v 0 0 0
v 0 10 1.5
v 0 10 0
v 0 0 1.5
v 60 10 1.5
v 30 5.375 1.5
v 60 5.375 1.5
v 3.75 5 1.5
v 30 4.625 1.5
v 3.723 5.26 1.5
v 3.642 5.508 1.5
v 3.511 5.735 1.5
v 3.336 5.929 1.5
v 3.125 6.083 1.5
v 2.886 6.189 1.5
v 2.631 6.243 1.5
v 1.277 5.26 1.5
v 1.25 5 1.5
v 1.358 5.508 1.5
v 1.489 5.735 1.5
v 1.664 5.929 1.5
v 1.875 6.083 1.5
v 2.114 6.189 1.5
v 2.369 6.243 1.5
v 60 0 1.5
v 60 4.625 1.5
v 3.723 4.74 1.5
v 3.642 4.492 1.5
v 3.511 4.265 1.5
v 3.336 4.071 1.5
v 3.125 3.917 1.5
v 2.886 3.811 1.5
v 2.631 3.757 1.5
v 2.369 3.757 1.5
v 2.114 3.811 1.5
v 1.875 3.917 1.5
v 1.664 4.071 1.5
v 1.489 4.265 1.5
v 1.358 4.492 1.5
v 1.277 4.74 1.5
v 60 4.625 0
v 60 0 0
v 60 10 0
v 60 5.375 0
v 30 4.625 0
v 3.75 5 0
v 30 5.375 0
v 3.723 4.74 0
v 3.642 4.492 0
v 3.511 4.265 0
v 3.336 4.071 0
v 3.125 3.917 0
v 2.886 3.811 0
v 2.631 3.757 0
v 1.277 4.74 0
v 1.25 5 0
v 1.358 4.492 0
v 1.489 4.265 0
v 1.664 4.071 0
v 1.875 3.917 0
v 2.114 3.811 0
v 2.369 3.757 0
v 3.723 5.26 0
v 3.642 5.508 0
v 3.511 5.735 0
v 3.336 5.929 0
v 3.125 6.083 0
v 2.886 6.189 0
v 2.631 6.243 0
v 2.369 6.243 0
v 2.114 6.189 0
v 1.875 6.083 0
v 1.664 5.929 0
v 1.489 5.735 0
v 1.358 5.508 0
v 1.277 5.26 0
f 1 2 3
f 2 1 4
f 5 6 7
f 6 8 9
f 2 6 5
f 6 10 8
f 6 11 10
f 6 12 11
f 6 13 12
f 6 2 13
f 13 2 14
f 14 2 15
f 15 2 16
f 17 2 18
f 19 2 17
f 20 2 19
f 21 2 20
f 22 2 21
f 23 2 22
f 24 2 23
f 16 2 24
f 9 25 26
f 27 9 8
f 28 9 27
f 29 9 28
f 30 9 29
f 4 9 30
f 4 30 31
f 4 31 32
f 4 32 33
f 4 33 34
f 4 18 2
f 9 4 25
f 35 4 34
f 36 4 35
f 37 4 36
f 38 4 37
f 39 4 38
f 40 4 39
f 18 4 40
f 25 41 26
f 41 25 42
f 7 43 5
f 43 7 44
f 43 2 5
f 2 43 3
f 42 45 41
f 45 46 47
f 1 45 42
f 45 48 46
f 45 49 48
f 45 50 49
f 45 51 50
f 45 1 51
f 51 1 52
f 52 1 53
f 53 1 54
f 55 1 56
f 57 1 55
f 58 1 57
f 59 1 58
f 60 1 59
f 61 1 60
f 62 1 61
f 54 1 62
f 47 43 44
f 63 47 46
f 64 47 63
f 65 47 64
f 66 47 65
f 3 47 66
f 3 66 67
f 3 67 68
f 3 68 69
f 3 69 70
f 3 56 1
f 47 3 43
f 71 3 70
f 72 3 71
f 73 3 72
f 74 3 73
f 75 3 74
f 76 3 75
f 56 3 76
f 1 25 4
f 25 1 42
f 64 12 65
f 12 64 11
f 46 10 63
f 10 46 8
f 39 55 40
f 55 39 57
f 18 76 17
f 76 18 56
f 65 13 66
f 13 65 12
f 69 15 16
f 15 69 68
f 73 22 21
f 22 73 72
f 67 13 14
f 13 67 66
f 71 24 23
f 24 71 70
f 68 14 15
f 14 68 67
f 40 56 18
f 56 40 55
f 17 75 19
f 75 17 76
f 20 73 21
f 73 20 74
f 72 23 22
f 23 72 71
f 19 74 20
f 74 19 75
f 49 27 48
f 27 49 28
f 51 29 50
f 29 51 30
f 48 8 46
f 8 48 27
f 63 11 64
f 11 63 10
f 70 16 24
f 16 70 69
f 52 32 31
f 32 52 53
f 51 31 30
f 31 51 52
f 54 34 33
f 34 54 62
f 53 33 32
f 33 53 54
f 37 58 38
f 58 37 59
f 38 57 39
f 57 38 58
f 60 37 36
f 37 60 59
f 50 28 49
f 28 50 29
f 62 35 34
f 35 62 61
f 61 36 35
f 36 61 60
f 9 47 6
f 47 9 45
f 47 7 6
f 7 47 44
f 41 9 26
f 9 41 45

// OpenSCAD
WallThickness = 1.5;

BaseWidth = 60;
BaseDepth = 10;

SensorHoleDiameter = 3.3;
SensorHoleTopOffset = 2.5;

FlagHoleWidth = 0.75;

difference() {
    cube(size=[BaseWidth, BaseDepth, WallThickness], center=false);
    translate([SensorHoleTopOffset, BaseDepth/2, 0])
    cylinder(h=WallThickness, d=SensorHoleTopOffset, center=false, $fn=30);
translate([BaseWidth/2, BaseDepth/2-FlagHoleWidth/2, 0])
cube(size=[BaseWidth/2, FlagHoleWidth, WallThickness], center=false);
}
